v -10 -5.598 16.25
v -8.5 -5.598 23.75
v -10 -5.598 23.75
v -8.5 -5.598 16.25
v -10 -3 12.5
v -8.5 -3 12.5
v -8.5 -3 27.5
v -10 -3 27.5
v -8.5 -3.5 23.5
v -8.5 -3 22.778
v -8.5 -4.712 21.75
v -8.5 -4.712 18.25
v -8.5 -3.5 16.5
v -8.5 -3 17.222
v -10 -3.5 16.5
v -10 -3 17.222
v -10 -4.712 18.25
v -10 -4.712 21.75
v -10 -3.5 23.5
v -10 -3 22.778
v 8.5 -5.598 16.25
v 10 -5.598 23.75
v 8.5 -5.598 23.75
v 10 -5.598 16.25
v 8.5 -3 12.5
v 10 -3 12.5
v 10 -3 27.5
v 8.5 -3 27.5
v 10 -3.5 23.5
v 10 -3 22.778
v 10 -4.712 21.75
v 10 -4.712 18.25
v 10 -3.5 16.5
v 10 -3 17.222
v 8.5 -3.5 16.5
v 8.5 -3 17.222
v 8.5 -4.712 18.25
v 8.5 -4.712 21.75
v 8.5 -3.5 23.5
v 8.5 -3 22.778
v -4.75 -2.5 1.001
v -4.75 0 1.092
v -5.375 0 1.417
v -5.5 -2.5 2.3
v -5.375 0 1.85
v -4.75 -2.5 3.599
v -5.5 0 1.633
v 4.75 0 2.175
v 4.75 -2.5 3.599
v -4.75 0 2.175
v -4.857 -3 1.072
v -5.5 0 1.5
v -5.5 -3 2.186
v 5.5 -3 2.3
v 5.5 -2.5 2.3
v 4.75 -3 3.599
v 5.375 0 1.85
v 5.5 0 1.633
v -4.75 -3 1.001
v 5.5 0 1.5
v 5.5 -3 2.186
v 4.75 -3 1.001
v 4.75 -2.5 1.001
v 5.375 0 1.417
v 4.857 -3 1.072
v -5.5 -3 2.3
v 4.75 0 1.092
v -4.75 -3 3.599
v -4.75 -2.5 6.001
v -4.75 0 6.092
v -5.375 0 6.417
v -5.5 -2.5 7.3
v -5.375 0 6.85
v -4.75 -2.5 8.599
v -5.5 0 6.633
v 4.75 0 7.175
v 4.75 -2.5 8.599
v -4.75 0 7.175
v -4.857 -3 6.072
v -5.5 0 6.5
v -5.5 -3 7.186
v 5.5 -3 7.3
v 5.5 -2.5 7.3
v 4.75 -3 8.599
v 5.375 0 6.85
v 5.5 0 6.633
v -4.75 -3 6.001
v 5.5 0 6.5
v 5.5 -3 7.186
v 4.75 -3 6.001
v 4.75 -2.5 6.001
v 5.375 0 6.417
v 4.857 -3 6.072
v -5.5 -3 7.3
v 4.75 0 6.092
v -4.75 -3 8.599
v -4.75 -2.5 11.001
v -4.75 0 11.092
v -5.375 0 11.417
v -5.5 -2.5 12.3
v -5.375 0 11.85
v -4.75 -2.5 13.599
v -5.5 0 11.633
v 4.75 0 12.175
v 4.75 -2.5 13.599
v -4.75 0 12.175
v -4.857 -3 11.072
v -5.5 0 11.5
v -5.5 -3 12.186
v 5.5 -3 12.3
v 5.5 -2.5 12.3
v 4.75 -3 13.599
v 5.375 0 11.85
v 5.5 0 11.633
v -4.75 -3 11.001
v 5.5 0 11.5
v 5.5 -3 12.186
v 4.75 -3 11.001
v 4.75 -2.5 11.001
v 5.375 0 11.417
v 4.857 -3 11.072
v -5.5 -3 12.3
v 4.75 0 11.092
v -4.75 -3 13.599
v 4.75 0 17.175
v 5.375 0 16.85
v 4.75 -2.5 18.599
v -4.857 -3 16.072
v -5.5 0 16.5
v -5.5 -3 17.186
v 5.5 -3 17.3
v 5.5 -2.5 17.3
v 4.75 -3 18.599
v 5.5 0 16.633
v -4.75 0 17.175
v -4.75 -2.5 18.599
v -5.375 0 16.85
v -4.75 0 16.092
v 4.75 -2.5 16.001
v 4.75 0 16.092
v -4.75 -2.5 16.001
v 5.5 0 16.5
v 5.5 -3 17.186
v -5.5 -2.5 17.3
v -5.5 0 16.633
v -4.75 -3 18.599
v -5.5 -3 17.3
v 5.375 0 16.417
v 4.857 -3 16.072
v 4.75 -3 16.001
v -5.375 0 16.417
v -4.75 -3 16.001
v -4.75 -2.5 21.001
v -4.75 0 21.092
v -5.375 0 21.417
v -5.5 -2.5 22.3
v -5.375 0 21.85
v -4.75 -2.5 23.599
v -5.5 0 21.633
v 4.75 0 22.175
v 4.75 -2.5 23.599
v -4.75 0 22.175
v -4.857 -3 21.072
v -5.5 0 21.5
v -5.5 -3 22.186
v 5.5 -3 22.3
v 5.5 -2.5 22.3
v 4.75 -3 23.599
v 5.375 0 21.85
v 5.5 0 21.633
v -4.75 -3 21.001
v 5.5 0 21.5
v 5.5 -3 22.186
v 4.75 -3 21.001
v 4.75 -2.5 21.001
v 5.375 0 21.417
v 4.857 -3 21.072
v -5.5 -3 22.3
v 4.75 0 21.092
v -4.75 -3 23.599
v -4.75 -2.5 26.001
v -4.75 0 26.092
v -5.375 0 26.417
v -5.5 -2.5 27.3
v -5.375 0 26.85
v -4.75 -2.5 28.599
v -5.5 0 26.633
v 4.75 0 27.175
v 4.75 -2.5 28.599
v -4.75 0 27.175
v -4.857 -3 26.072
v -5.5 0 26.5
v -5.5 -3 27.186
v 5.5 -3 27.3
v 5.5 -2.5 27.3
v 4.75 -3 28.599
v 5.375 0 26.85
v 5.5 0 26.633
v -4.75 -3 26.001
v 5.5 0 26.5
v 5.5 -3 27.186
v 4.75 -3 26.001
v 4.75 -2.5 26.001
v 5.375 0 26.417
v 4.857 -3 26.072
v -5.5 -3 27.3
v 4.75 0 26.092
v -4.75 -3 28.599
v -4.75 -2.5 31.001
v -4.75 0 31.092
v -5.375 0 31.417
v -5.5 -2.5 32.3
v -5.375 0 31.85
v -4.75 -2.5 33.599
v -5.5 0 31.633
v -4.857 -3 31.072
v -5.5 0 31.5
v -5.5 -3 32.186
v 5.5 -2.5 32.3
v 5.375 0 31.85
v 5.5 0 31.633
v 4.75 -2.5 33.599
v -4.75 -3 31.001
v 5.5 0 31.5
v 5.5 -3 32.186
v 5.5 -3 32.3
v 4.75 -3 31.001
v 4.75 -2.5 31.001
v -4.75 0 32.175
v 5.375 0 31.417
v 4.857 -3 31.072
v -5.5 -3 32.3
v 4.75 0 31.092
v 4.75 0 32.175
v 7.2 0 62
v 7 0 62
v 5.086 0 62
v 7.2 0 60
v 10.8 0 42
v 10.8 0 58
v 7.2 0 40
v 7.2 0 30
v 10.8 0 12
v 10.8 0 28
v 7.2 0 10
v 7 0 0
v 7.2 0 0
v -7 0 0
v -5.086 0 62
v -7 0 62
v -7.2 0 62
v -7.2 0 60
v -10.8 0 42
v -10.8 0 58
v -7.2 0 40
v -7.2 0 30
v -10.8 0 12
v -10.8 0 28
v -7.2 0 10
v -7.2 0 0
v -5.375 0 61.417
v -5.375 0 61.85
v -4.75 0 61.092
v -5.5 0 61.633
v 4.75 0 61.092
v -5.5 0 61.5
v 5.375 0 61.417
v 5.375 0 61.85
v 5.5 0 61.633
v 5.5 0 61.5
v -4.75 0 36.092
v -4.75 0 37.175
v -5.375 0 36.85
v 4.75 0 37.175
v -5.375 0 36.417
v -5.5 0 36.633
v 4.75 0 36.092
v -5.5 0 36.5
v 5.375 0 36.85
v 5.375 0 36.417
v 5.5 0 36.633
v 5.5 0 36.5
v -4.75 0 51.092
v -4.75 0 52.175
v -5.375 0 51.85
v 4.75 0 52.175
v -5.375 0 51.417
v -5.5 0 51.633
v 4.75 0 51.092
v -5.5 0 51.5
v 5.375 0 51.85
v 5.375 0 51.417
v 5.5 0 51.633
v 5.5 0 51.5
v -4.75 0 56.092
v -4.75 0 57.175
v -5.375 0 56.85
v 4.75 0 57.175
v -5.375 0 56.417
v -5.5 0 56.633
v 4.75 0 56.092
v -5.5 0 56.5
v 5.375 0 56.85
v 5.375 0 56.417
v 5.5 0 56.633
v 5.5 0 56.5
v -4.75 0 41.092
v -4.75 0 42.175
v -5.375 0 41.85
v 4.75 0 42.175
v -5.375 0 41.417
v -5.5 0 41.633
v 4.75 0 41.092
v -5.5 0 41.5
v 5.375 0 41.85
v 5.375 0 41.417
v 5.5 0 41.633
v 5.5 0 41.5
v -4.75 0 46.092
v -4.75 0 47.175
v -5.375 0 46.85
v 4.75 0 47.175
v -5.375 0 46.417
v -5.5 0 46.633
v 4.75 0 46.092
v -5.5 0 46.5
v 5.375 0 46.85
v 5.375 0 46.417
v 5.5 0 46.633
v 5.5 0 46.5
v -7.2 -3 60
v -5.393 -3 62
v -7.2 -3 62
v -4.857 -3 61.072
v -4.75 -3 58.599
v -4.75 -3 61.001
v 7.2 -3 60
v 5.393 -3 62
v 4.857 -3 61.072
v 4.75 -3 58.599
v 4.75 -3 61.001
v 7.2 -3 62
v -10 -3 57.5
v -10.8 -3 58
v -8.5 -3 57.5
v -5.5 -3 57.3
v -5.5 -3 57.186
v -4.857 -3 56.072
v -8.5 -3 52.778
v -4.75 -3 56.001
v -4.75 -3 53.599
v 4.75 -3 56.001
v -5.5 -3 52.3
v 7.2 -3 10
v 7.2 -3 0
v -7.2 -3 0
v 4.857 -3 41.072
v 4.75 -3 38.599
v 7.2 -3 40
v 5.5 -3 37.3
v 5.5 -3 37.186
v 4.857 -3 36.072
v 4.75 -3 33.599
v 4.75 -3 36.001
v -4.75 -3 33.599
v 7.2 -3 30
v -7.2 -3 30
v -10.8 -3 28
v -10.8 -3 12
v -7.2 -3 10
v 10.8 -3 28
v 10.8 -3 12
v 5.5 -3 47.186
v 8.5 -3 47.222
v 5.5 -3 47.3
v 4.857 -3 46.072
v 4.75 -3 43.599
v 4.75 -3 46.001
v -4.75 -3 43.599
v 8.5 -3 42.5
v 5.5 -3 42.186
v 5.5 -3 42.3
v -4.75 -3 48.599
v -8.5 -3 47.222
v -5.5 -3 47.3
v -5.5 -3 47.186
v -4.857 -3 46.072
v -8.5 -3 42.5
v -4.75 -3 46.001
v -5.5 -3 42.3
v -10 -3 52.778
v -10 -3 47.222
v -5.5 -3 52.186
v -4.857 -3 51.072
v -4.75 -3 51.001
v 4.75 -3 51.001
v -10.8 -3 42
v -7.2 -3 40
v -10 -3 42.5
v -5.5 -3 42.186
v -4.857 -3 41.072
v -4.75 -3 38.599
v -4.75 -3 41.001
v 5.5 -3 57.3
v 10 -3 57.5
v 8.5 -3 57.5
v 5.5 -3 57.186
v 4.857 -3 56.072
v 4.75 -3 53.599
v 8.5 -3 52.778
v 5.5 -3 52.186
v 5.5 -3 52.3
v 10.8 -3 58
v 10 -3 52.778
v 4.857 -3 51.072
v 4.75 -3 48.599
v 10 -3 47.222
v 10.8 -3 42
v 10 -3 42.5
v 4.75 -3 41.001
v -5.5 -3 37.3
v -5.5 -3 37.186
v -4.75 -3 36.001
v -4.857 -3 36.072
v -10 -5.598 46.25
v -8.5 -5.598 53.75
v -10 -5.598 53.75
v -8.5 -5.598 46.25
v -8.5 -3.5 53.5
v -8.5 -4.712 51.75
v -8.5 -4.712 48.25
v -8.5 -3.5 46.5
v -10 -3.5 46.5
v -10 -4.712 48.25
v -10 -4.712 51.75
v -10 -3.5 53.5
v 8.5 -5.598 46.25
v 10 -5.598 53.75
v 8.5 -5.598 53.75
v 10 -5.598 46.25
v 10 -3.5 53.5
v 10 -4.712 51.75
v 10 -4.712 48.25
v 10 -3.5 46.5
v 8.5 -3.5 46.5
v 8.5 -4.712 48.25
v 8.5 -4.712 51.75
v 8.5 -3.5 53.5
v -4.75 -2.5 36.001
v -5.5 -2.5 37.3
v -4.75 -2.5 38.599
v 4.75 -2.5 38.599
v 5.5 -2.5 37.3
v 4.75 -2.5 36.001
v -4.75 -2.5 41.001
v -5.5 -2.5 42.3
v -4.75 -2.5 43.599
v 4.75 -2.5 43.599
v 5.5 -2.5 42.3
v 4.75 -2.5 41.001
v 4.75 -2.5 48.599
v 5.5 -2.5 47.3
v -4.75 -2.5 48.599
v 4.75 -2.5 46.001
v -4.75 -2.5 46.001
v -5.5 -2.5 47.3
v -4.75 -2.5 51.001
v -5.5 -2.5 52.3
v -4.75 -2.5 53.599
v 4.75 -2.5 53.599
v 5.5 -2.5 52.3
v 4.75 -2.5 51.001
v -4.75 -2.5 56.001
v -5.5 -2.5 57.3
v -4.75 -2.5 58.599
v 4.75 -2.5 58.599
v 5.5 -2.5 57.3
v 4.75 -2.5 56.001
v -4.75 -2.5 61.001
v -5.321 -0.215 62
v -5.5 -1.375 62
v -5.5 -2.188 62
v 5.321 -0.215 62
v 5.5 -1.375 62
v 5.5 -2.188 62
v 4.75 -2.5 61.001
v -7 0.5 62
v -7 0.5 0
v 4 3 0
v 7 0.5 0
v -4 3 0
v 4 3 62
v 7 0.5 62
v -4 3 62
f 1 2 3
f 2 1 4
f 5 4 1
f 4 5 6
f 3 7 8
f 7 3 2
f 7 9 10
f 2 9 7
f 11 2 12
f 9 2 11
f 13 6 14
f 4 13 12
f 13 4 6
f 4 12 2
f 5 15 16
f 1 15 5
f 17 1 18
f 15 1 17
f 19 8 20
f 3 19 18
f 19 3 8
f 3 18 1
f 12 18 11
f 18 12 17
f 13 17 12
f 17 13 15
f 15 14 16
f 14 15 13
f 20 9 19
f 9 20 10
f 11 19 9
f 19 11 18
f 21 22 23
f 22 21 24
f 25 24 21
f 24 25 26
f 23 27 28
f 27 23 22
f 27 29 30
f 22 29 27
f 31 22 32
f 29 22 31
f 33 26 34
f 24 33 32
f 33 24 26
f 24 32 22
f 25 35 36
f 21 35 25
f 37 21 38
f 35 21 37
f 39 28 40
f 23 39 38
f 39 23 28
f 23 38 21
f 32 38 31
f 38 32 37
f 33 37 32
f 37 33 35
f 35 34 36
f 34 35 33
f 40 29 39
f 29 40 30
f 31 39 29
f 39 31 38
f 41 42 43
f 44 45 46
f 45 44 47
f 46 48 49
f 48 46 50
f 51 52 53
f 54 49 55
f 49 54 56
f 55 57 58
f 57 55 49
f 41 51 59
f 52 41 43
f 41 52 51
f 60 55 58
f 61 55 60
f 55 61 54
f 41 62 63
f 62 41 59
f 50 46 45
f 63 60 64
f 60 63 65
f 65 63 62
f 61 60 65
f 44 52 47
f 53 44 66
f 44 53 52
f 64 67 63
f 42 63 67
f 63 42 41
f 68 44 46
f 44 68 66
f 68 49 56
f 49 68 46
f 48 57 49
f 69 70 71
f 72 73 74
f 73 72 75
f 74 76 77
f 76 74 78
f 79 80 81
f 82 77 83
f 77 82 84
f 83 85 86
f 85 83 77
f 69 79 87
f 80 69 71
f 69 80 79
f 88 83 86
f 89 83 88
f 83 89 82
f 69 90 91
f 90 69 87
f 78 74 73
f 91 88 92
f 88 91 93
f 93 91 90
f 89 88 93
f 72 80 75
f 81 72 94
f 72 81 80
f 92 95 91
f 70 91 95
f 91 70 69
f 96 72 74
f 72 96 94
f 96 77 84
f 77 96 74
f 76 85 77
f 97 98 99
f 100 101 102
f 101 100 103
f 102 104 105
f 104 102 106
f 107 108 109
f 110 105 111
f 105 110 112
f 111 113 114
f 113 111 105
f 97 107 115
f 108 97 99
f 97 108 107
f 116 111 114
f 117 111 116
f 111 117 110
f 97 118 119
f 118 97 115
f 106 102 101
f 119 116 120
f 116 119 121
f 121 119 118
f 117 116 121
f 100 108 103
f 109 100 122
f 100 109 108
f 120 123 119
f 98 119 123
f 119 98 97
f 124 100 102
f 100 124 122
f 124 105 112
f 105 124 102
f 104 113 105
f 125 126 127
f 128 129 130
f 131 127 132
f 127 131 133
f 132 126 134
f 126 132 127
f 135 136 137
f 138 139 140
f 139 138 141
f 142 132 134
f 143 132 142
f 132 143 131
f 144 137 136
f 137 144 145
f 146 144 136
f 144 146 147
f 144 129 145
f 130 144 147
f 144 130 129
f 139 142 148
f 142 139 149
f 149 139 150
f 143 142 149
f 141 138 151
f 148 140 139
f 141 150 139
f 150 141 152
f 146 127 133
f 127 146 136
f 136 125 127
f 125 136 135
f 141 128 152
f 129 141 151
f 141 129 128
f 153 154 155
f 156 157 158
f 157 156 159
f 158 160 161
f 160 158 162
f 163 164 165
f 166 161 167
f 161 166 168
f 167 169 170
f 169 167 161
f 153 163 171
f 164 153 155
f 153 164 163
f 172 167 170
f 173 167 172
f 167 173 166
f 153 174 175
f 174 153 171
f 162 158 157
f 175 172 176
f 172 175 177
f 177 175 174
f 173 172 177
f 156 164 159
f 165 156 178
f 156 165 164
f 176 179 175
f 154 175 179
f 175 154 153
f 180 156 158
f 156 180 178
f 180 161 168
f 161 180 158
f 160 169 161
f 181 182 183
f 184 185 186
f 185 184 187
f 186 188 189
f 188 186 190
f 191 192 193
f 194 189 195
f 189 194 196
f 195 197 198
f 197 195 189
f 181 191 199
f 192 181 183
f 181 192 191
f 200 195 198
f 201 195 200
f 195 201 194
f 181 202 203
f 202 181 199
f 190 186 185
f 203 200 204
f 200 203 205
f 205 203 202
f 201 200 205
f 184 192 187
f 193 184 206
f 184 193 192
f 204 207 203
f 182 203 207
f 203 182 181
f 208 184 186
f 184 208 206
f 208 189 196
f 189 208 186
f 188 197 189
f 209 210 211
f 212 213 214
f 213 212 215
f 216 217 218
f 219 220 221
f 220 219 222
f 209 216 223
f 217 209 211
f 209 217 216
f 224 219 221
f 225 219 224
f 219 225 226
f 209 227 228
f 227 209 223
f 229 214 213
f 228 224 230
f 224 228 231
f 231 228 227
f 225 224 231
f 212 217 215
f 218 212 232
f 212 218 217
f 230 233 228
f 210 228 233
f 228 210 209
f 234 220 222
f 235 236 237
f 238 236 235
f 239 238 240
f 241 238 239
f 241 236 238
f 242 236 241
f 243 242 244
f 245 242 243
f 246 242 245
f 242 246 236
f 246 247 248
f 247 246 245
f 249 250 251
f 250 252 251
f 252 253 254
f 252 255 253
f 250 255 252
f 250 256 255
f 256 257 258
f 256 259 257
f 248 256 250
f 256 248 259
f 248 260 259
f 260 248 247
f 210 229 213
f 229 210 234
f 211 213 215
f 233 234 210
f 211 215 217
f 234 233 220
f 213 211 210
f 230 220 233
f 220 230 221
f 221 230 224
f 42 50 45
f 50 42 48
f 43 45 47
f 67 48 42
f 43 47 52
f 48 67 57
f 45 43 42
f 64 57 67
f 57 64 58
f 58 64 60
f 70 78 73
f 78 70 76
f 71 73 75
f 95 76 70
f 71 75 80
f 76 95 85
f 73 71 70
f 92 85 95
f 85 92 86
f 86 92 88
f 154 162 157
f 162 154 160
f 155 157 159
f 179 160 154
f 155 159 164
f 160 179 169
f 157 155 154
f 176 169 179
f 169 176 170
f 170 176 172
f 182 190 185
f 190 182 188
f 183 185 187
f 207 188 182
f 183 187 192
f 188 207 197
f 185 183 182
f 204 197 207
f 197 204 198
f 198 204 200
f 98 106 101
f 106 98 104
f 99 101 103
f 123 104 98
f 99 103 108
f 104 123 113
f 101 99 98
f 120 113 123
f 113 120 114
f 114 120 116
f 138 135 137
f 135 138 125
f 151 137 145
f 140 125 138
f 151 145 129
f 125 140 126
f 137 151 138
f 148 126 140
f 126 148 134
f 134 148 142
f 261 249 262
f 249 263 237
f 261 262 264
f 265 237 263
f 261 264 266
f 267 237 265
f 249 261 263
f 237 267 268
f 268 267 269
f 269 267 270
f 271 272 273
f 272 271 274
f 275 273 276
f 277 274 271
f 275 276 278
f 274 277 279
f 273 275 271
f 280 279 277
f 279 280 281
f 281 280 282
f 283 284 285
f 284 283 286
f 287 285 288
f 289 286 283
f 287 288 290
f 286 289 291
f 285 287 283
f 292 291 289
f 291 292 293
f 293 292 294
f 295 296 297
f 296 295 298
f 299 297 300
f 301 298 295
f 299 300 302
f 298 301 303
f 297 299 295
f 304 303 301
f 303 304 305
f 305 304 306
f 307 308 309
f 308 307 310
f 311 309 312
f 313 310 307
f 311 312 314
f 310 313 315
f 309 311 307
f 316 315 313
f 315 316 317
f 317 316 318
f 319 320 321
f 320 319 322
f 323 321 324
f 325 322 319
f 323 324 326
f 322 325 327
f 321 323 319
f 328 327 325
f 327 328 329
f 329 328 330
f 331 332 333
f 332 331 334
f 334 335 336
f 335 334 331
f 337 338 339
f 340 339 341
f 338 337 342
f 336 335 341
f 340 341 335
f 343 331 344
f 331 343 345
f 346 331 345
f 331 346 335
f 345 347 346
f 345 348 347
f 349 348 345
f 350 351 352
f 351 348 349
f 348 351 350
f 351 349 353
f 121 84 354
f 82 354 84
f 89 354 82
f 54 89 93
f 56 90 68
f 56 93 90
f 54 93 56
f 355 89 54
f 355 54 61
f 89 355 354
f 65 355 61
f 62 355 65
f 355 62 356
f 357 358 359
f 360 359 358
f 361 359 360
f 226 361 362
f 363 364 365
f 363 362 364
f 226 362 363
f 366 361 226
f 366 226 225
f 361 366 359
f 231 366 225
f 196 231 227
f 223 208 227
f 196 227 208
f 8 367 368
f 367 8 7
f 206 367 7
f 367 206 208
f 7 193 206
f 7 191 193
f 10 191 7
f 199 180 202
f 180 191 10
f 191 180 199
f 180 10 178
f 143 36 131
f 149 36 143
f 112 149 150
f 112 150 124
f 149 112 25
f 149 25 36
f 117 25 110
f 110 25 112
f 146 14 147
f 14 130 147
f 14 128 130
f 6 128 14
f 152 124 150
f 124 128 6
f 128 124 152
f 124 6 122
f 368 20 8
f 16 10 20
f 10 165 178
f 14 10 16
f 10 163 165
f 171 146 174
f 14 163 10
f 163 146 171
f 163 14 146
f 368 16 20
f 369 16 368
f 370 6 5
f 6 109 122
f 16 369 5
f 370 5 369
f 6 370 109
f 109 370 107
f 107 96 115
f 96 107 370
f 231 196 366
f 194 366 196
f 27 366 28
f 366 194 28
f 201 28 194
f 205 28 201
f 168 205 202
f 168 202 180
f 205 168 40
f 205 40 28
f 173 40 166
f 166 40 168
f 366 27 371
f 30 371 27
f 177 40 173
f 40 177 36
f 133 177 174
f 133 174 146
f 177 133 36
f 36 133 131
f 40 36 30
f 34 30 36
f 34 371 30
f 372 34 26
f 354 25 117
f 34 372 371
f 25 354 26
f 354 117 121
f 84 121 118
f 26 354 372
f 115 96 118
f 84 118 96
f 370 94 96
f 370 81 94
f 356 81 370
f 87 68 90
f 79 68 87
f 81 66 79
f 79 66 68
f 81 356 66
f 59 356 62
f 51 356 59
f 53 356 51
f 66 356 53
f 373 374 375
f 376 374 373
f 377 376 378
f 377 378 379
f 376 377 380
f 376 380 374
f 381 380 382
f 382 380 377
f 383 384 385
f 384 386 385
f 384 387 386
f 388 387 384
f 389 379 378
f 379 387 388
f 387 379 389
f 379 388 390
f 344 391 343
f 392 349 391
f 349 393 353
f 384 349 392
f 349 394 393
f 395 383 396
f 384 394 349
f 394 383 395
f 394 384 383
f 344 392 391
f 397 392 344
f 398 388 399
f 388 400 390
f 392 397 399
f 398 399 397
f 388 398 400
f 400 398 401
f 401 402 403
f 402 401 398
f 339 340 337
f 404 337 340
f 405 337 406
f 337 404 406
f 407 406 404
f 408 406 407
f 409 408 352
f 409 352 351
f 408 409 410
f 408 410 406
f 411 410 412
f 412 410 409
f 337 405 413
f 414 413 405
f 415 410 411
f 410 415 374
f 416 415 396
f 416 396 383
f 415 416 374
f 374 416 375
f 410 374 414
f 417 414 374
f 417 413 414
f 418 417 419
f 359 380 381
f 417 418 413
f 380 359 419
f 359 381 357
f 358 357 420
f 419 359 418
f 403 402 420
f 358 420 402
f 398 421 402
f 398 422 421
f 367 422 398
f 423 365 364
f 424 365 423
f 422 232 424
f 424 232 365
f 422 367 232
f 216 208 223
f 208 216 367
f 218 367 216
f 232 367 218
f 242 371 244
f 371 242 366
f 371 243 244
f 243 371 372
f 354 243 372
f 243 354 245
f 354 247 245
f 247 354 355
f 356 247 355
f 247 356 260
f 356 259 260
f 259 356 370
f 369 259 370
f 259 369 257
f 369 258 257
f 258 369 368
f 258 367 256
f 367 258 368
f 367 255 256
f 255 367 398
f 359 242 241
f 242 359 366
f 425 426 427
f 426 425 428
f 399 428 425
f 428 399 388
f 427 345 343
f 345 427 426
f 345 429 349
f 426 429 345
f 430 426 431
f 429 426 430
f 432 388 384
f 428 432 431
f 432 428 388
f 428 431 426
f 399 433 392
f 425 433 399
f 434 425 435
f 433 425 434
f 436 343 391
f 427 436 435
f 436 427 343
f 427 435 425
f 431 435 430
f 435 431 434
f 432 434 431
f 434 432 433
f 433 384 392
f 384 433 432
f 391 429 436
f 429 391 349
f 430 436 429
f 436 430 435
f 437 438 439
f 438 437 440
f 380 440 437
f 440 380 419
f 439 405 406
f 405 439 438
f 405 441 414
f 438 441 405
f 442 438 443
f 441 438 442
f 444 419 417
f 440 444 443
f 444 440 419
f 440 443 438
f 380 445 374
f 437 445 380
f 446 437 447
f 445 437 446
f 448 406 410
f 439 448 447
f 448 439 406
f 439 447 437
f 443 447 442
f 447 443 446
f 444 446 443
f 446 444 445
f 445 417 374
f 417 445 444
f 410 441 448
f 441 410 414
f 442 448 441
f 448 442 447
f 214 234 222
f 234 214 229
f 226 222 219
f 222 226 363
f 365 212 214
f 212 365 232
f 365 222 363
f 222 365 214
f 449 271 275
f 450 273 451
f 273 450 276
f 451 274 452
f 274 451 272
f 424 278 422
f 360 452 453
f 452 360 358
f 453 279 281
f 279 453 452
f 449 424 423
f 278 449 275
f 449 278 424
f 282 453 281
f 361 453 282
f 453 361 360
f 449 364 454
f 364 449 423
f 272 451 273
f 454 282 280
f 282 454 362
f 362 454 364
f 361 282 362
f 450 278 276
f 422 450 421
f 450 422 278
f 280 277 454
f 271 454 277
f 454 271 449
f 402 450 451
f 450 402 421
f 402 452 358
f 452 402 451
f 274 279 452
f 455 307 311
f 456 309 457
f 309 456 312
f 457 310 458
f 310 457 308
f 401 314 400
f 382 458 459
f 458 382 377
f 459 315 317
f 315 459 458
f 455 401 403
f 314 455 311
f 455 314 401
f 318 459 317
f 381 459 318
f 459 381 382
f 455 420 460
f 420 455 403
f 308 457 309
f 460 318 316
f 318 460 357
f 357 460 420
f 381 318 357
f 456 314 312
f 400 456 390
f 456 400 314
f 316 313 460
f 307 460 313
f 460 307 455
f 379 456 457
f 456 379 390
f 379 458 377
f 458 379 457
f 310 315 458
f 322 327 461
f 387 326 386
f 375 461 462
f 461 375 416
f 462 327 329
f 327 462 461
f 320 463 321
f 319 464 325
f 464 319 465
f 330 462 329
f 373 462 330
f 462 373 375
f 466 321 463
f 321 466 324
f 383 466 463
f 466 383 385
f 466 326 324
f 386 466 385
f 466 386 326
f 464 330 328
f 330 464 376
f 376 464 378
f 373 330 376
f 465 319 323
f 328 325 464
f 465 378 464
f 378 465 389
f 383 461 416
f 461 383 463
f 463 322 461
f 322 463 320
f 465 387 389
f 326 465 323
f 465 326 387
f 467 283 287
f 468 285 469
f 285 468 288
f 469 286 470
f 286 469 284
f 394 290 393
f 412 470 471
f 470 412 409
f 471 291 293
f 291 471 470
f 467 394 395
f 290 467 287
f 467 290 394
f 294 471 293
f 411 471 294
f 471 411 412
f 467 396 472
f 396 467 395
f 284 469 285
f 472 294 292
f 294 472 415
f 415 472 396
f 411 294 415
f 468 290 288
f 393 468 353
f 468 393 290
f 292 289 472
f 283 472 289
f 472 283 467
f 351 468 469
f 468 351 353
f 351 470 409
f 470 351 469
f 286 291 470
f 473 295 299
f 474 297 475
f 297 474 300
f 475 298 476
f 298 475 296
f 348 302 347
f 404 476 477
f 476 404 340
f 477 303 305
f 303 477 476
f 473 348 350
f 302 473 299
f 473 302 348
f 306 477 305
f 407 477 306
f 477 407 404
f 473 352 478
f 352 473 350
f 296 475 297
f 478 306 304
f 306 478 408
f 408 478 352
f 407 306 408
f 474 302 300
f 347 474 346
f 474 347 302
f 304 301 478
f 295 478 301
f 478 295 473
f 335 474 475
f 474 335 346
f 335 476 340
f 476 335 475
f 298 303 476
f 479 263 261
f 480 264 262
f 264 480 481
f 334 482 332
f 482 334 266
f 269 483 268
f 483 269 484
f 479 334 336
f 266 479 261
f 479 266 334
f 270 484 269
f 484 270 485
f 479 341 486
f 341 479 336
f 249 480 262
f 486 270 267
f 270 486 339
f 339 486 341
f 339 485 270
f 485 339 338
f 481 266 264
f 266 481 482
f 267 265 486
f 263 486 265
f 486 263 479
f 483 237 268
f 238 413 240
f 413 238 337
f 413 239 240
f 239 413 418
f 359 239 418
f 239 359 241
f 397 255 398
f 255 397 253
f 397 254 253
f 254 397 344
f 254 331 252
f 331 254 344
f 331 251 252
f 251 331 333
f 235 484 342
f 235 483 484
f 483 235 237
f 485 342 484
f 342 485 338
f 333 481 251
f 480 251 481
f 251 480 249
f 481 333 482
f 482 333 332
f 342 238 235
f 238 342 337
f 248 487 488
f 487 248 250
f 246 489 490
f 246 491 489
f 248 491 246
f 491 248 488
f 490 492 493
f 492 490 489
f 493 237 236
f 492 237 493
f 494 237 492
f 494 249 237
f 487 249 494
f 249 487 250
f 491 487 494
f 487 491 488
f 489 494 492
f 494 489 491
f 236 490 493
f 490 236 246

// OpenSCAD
// Module names are of the form poly_<inkscape-path-id>().  As a result,
// you can associate a polygon in this OpenSCAD program with the corresponding
// SVG element in the Inkscape document by looking for the XML element with
// the attribute id="inkscape-path-id".

// fudge value is used to ensure that subtracted solids are a tad taller
// in the z dimension than the polygon being subtracted from.  This helps
// keep the resulting .stl file manifold.
fudge = 0.1;


hull() {
   translate([-4,0,0]) cube([8,3,62]);
   translate([-7,0,0]) cube([14,0.5,62]);
}
ladder();


module ladder(mult=2) {
   for (i=[0:mult-1]) {
      translate([0,0,30*i]) {
         translate([-10,-3,20]) scale([1,1,2.5]) rotate([0,90,0]) difference() { 
            cylinder($fn=6,r=3,h=1.5);
            translate([0,-0.5,0]) cylinder($fn=6,r=1.4,h=1.6);
         }
         translate([8.5,-3,20]) scale([1,1,2.5]) rotate([0,90,0]) difference() { 
            cylinder($fn=6,r=3,h=1.5);
            translate([0,-0.5,0]) cylinder($fn=6,r=1.4,h=1.6);
         }
         difference() {
            ladderOutline(h=3);
            for (j=[0:6]) {
               translate([0,0.5,j*5 + 2.3]) rotate([90,0,0]) {
                  hull() {
                     translate([-4,0,3]) cylinder($fn=6,r=1.5,h=1);
                     translate([4,0,3])  cylinder($fn=6,r=1.5,h=1);
                     translate([-4,-0.8,0]) scale([1,0.3,1]) cylinder($fn=6,r=1.5,h=0.5);
                     translate([4,-0.8,0])  scale([1,0.3,1]) cylinder($fn=6,r=1.5,h=0.5);
                  }
               }
            }
         }
      }
   }
}

module ladderOutline(h)
{
   translate([0,0,16]) rotate([90,0,0]) scale([0.9 * 25.4/90, -25.4/90, 1])
      linear_extrude(height=h)
	 polygon([[-28.346456,21.259835],
                  [-42.519684,14.173235],
                  [-42.519684,-42.519705],
                  [-28.346456,-49.606315],
                  [-28.346456,-56.692935],
                  [28.346457,-56.692935],
                  [28.346457,-49.606315],
                  [42.519685,-42.519705],
                  [42.519685,14.173235],
                  [28.346457,21.259835],
                  [28.346457,56.692935],
                  [-28.346456,56.692935]]);
}
